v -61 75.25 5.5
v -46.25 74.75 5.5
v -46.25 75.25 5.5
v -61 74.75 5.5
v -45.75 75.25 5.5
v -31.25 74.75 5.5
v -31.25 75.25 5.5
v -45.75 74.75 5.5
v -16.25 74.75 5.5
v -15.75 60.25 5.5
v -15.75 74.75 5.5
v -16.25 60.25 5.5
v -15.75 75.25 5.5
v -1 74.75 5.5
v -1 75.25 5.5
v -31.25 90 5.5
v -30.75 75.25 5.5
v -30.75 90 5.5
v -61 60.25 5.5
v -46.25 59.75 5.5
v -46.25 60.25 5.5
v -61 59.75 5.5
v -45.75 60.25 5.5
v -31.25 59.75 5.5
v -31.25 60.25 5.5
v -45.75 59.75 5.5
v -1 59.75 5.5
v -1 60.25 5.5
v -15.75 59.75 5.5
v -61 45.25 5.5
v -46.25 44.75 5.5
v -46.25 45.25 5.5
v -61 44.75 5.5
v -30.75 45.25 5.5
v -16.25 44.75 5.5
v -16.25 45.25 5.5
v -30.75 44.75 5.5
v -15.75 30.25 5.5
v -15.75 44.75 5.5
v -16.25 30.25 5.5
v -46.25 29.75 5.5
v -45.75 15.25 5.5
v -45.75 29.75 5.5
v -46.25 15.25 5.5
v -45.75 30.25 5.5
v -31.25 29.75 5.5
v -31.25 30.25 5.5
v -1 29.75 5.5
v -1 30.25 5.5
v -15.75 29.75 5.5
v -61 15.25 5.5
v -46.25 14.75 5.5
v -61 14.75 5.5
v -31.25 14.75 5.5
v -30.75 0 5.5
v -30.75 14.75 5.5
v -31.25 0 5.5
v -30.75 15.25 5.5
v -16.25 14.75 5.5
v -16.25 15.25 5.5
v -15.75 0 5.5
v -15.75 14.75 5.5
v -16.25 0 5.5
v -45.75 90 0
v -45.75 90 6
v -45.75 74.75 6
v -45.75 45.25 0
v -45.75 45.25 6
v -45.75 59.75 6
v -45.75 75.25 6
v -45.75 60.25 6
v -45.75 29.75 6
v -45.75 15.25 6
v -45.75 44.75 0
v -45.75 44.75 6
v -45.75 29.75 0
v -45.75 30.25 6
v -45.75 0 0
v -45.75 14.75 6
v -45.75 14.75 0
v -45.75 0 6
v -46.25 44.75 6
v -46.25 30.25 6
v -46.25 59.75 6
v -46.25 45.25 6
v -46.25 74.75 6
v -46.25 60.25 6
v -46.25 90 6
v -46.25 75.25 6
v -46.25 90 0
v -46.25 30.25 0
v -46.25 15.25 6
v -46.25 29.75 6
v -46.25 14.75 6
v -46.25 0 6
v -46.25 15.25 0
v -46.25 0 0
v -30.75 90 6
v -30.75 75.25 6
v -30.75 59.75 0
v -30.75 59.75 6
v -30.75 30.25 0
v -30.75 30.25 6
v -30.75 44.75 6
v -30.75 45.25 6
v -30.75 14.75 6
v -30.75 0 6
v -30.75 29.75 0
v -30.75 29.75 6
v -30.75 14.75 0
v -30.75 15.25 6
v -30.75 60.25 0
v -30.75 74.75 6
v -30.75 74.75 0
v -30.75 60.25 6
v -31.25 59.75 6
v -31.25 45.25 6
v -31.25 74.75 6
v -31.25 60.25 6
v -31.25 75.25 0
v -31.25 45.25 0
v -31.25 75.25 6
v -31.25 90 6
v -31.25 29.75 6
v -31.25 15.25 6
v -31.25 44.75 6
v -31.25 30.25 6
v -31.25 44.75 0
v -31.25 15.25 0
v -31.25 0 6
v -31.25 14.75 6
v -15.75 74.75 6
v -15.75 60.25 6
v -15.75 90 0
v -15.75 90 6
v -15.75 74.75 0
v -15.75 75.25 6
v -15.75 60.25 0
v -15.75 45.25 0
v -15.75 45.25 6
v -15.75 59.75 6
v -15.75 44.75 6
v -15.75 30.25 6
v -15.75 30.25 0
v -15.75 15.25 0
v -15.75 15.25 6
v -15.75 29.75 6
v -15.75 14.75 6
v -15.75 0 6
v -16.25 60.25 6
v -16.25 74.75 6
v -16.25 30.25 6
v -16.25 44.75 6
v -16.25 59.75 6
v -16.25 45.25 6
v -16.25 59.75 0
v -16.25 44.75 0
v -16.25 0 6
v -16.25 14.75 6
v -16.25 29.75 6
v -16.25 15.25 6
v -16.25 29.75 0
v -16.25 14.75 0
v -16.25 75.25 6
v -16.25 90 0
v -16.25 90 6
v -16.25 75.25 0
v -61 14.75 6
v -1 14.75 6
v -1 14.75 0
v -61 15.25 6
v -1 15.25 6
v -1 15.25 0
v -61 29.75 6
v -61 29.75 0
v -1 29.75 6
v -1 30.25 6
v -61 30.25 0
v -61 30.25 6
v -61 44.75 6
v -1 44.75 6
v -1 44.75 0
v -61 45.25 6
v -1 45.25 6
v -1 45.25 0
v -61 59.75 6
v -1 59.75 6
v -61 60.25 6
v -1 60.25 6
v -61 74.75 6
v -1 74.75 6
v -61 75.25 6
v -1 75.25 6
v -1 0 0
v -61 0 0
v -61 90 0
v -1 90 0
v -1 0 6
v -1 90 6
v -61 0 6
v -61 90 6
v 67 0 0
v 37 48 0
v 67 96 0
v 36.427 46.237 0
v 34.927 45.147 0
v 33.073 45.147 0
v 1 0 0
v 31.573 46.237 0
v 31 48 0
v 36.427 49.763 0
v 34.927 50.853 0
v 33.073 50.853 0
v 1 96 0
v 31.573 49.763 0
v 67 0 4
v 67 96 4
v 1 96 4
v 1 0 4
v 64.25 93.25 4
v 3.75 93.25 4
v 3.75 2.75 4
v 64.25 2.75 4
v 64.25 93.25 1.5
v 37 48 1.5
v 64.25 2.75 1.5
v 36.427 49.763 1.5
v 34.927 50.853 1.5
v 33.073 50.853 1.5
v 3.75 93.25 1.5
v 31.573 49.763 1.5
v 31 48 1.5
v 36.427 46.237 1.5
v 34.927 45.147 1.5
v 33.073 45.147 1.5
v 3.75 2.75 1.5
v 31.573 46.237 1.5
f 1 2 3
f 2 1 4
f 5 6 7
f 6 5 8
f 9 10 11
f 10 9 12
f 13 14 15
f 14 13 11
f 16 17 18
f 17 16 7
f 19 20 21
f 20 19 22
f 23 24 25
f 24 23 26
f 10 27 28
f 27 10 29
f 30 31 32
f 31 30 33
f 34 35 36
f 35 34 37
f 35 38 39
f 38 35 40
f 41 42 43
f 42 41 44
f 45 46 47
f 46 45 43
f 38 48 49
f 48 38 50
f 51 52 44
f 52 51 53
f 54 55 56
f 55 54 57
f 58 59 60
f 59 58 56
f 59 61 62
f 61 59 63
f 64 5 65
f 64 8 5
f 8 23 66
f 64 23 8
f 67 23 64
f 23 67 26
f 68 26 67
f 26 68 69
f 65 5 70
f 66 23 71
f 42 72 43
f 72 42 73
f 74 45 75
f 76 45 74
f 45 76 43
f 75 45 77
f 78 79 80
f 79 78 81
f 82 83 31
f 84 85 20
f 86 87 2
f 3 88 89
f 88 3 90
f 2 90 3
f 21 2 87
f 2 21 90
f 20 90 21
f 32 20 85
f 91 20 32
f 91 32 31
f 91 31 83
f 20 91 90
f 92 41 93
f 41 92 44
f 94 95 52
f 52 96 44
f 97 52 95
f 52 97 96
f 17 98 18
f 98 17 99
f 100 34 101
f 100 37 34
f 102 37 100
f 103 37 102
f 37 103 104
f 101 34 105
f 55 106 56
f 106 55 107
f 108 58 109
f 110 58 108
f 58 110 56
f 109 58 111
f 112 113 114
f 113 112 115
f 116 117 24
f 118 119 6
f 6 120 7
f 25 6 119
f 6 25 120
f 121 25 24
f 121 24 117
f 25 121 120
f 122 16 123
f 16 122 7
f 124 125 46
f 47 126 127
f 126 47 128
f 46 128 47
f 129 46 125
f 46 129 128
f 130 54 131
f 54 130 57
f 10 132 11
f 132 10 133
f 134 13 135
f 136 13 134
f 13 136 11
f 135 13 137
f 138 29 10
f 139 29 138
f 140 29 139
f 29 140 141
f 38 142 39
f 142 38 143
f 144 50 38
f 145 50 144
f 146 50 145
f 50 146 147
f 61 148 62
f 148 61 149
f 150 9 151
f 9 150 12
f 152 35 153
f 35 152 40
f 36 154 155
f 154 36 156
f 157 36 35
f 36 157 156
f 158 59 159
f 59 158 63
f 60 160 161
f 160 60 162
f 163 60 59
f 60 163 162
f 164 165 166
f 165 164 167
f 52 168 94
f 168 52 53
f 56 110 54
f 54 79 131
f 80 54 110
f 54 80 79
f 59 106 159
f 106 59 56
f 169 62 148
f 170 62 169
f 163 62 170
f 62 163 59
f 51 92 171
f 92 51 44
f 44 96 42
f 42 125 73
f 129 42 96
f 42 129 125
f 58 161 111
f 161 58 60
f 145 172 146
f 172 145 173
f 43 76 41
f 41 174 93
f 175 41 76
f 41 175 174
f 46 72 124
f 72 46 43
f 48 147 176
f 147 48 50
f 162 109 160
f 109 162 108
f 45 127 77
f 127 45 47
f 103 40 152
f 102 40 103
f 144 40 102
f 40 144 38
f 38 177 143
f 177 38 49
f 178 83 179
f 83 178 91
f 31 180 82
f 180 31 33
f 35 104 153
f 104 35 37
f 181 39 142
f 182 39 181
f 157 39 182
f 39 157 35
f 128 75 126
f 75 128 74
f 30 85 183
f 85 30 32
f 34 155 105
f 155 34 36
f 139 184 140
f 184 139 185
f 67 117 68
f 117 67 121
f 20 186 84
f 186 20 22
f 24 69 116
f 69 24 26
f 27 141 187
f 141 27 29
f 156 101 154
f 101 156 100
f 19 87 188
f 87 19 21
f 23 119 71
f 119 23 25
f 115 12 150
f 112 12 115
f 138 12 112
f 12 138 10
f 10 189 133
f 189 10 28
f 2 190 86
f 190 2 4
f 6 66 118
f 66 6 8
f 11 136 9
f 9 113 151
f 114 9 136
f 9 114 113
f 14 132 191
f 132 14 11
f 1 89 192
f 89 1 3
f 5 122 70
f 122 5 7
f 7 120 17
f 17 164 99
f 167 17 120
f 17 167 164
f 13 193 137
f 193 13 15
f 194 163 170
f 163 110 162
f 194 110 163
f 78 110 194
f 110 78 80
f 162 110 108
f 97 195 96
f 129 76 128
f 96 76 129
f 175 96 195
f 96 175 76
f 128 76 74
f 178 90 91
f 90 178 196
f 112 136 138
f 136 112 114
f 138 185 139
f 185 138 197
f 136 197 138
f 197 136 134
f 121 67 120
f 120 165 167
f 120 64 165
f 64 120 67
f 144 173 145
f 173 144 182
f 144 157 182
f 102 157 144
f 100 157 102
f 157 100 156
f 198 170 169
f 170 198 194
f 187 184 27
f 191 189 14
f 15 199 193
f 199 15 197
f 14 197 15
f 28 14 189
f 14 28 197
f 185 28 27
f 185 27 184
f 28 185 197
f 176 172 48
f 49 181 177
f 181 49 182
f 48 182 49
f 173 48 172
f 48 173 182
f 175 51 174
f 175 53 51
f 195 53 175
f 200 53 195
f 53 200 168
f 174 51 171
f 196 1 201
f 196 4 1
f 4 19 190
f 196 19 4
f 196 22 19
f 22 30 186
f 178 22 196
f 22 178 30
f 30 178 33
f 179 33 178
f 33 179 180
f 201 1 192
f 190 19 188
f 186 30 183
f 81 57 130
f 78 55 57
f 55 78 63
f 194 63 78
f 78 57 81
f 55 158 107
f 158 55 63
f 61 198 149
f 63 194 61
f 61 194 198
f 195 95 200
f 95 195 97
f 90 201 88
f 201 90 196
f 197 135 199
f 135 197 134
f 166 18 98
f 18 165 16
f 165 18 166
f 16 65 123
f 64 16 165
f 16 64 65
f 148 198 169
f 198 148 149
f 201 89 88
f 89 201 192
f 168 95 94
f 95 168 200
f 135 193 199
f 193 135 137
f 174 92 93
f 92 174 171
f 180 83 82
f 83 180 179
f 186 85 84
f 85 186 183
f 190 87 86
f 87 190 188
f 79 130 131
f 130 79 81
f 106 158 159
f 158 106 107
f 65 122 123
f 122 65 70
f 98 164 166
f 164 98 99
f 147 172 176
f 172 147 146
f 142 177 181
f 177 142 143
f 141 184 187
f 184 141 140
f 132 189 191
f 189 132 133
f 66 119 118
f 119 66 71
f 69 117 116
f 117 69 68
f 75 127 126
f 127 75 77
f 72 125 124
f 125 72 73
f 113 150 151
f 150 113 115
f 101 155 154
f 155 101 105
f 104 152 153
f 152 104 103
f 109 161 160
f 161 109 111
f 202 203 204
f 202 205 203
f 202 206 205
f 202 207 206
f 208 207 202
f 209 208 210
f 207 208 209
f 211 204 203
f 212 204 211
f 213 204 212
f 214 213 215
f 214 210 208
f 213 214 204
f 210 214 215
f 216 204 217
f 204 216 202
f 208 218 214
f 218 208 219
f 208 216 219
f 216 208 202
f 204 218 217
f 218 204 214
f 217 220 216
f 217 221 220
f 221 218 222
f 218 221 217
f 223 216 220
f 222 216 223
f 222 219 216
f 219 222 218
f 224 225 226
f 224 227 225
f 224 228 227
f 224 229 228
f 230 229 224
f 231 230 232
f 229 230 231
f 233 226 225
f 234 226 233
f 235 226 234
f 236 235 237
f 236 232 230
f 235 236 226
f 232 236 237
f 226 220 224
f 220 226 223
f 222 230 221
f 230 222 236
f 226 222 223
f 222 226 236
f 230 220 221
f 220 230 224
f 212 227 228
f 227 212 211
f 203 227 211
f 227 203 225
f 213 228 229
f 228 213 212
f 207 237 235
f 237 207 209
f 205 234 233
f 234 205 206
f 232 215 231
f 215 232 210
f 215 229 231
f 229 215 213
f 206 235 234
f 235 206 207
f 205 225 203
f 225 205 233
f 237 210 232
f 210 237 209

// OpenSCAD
// file: common.scad
block_size = 15;
base_height = 6;
// x plane split into 4 blocks
base_width = 4 * block_size;
// y plane split into 6 blocks
base_length = 6 * block_size;
gap = 0.5;

module base_block() {
  linear_extrude(base_height) square([base_width, base_length]);
}

module tray() {
    w = base_width;
    l = base_length;
    difference() {
        linear_extrude(4) square ([w+6,l+6]);
        translate([3-gap/2,3-gap/2,1.5]) linear_extrude(10) square([w+gap,l+gap]);
        translate([(w+6)/2,(l+6)/2,-1]) linear_extrude(10) circle(3);
    }
}

// Cut all the way through the base block on a grid line defined by the block
// size
module cutter(x1,y1,x2,y2,z,h) {
    x1c = x1 * block_size - gap/2;
    y1c = y1 * block_size - gap/2;
    x2c = x2 * block_size + gap/2;
    y2c = y2 * block_size + gap/2;
    cutx = x1 == x2 ? gap : x2c-x1c;
    cuty = y1 == y2 ? gap : y2c-y1c;
    translate([x1c,y1c,z]) linear_extrude(h) {
        square([cutx,cuty]);
    }
}

// Cut lines of a fixed width out of the puzzle block
module jigsaw(x1,y1,x2,y2) {
    cutter(x1,y1,x2,y2,-1,base_height+2);
}

module groove(x1,y1,x2,y2) {
    cutter(x1,y1,x2,y2,base_height-0.5,1);
}

module cut_grid() {
    for (x = [1:3]) {
        groove(x,0,x,6);
    }
    for (y = [1:5]) {
        groove(0,y,4,y);
    }
}
// main file
include <common.scad>

module cut_blocks() {
    // Maximum effort
    jigsaw(1,0,1,1);
    jigsaw(1,1,2,1);
    jigsaw(2,1,2,5);
    jigsaw(1,3,2,3);
    jigsaw(1,2,1,6);
    jigsaw(0,2,1,2);
    jigsaw(2,5,3,5);
    jigsaw(3,5,3,6);
    jigsaw(2,4,3,4);
    jigsaw(3,3,3,4);
    jigsaw(3,3,4,3);
    jigsaw(3,1,3,2);
    jigsaw(2,2,3,2);
    jigsaw(3,1,4,1);
}

translate([-base_width-1,0,0])
    difference() {
        base_block();
        cut_grid();
        #cut_blocks();
    }

translate([1,0,0]) tray(base_width, base_length);
